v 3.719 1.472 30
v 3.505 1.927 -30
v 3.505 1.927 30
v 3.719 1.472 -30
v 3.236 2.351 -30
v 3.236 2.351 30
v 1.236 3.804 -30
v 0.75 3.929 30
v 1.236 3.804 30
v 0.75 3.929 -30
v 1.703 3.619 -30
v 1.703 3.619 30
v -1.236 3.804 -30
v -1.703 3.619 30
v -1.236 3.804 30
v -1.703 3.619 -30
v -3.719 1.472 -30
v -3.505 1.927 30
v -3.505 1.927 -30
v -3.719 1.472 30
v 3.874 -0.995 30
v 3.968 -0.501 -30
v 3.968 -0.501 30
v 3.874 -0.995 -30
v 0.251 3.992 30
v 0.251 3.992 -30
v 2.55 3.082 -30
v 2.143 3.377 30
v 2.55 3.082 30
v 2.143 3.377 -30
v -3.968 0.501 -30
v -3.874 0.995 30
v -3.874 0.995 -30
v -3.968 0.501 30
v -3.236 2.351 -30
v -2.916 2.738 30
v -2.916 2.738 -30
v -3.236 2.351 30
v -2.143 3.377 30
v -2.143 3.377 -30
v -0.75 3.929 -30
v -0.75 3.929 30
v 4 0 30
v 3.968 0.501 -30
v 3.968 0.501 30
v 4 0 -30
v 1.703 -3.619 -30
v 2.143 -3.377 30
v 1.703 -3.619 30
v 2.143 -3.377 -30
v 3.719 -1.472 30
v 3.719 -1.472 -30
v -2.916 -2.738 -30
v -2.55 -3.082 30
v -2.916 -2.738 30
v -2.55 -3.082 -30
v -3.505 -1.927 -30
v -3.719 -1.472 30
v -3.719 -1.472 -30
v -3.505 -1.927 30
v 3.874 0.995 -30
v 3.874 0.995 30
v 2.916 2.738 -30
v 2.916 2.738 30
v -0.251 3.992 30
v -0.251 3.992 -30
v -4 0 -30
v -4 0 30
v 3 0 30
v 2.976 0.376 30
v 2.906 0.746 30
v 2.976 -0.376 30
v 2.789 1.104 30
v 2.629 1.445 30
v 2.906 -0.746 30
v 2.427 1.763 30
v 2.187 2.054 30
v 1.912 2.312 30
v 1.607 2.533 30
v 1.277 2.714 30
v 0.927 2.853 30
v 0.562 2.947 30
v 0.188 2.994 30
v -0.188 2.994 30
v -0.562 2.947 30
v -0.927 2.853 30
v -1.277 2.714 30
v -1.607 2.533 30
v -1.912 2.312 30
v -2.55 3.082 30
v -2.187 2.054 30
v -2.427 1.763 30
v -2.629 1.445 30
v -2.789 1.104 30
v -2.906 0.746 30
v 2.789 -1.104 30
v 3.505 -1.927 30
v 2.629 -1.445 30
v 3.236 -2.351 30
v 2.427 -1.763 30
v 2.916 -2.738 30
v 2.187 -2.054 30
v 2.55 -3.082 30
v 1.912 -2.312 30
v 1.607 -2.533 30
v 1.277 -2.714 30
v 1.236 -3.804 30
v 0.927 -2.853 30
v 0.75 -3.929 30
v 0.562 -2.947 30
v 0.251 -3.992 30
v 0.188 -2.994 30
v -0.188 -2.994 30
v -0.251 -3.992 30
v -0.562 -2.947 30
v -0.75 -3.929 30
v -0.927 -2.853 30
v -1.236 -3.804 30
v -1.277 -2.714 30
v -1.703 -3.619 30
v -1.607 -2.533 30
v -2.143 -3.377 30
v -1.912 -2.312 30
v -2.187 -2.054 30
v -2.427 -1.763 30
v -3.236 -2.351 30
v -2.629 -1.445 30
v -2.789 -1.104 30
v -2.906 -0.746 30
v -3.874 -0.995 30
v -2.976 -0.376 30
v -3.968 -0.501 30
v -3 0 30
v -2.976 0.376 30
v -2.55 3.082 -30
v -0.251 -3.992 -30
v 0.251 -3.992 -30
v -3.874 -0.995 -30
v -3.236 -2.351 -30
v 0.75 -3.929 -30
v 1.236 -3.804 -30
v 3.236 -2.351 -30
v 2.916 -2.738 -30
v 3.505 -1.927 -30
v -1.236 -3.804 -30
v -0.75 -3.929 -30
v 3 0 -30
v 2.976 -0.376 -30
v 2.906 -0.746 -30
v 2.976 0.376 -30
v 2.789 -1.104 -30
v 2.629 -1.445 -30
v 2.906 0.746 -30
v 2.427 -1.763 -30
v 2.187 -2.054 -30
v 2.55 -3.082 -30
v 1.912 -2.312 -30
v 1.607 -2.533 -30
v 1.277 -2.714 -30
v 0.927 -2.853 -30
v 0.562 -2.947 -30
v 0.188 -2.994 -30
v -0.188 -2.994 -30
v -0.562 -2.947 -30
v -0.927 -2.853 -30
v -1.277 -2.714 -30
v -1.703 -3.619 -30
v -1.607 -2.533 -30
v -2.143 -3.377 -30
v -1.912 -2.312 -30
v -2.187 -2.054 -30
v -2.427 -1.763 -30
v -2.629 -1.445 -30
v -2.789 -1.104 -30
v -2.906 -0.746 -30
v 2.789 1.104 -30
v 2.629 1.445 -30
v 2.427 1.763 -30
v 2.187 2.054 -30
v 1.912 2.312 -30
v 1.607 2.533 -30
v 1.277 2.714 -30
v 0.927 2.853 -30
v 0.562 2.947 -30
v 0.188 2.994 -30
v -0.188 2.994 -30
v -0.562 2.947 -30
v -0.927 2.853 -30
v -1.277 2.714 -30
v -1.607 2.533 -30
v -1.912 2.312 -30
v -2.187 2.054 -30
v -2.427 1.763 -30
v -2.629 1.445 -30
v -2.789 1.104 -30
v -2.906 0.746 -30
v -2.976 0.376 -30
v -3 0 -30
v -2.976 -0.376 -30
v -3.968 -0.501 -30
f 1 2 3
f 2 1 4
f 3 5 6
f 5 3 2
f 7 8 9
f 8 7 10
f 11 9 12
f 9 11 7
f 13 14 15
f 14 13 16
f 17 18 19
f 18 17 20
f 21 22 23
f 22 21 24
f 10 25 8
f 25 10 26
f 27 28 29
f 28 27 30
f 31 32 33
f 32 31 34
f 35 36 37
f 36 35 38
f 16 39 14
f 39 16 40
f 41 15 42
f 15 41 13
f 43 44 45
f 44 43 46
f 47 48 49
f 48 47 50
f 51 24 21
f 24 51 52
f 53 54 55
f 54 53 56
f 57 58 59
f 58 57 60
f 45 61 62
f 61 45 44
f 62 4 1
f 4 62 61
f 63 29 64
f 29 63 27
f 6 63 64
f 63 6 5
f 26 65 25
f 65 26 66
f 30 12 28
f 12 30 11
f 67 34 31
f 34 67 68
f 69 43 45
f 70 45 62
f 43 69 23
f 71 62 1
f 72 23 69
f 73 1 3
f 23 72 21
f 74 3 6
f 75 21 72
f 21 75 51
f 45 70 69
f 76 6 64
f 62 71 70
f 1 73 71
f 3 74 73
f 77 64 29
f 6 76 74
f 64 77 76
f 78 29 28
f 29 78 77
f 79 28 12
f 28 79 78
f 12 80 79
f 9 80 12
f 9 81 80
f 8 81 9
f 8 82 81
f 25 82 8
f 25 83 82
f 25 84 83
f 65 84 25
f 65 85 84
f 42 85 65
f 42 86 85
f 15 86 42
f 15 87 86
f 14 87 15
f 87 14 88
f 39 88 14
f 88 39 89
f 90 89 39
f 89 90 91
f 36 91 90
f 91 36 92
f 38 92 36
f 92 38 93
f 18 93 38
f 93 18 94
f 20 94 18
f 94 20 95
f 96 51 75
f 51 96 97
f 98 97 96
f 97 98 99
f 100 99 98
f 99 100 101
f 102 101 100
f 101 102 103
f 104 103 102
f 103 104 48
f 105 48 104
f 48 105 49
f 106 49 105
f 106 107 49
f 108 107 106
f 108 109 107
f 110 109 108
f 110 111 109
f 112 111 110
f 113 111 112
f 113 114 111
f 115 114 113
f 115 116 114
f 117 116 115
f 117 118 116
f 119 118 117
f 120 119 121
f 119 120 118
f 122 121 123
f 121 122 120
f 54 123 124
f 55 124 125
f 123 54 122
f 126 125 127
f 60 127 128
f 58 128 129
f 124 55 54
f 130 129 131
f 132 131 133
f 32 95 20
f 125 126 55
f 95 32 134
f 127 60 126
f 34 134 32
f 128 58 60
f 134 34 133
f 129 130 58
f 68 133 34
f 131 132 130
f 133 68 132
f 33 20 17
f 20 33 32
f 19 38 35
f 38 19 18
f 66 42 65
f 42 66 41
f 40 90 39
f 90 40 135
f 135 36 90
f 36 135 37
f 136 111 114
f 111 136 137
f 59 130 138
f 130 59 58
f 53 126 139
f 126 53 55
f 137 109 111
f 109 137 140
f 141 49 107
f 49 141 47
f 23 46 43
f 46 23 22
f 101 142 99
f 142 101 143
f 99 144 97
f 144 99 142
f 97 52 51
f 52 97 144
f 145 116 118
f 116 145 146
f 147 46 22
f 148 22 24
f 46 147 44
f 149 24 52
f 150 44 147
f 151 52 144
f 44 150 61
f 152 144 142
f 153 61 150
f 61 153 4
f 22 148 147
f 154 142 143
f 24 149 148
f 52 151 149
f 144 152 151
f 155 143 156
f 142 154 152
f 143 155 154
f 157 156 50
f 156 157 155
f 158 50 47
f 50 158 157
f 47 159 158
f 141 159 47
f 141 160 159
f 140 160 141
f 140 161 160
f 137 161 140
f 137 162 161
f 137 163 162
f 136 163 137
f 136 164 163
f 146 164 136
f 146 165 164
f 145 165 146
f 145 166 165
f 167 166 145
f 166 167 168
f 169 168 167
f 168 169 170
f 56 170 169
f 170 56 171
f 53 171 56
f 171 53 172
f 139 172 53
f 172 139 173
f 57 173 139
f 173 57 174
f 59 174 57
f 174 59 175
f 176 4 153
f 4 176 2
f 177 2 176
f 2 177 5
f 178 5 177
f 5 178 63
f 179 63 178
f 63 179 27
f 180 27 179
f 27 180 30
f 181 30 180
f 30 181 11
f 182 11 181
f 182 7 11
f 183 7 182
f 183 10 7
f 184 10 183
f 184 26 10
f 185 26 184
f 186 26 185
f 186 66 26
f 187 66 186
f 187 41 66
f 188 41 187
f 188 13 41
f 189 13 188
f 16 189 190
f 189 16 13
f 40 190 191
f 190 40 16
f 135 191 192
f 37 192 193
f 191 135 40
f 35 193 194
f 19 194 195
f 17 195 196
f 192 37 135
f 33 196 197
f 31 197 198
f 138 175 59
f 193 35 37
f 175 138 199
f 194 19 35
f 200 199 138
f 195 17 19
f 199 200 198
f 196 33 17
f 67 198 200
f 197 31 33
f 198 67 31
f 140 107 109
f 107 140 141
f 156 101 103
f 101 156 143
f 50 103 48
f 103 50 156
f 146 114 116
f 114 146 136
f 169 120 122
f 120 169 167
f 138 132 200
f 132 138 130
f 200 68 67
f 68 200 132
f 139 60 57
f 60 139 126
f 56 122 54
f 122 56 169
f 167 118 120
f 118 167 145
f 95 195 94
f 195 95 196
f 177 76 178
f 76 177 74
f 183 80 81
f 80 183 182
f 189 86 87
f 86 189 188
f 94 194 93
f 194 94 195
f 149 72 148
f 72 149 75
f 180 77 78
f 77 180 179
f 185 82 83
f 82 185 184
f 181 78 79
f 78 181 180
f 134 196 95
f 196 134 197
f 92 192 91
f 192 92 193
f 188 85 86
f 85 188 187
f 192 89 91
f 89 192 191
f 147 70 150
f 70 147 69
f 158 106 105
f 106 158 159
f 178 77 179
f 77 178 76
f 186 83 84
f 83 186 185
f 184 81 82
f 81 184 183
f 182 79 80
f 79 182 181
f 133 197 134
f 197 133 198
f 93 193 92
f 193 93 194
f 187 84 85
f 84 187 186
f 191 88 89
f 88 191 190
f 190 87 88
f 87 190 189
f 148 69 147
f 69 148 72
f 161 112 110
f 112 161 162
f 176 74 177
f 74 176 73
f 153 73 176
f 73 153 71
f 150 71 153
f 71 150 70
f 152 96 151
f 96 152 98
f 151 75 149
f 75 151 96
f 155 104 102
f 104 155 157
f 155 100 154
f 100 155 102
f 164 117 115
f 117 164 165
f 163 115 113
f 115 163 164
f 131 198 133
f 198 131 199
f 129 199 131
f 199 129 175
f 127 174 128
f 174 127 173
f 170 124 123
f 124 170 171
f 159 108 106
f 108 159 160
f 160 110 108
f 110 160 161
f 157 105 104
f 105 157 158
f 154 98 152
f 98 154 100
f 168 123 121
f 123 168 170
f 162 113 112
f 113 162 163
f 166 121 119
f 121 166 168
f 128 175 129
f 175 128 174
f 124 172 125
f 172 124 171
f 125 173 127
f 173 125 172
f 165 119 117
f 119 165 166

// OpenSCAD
$fn = 50;


difference() {
	union() {
		translate(v = [0, 0, -30.0000000000]) {
			cylinder(h = 60, r = 4.0000000000);
		}
	}
	union() {
		translate(v = [0, 0, -100.0000000000]) {
			cylinder(h = 200, r = 3);
		}
	}
}
